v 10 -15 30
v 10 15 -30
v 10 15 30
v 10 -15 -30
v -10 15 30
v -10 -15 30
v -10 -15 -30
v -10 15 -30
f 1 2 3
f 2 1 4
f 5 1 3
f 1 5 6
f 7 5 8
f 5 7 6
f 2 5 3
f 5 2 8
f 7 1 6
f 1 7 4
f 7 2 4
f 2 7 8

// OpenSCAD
// Define dimensions for the rectangular block
block_width = 20;  // Width of the block
block_height = 10; // Height of the block
block_depth = 30;  // Depth of the block

// Function to create a rectangular block
module rectangular_block() {
    cube([block_width, block_depth, block_height], center = true);
}

// Generate the stacked layers without gaps
translate([0, 0, block_height * 2.5]) rectangular_block(); // Layer 1
translate([0, 0, block_height * 1.5]) rectangular_block(); // Layer 2
translate([0, 0, block_height * 0.5]) rectangular_block(); // Layer 3
translate([0, 0, -block_height * 0.5]) rectangular_block(); // Layer 4
translate([0, 0, -block_height * 1.5]) rectangular_block(); // Layer 5
translate([0, 0, -block_height * 2.5]) rectangular_block(); // Layer 6
